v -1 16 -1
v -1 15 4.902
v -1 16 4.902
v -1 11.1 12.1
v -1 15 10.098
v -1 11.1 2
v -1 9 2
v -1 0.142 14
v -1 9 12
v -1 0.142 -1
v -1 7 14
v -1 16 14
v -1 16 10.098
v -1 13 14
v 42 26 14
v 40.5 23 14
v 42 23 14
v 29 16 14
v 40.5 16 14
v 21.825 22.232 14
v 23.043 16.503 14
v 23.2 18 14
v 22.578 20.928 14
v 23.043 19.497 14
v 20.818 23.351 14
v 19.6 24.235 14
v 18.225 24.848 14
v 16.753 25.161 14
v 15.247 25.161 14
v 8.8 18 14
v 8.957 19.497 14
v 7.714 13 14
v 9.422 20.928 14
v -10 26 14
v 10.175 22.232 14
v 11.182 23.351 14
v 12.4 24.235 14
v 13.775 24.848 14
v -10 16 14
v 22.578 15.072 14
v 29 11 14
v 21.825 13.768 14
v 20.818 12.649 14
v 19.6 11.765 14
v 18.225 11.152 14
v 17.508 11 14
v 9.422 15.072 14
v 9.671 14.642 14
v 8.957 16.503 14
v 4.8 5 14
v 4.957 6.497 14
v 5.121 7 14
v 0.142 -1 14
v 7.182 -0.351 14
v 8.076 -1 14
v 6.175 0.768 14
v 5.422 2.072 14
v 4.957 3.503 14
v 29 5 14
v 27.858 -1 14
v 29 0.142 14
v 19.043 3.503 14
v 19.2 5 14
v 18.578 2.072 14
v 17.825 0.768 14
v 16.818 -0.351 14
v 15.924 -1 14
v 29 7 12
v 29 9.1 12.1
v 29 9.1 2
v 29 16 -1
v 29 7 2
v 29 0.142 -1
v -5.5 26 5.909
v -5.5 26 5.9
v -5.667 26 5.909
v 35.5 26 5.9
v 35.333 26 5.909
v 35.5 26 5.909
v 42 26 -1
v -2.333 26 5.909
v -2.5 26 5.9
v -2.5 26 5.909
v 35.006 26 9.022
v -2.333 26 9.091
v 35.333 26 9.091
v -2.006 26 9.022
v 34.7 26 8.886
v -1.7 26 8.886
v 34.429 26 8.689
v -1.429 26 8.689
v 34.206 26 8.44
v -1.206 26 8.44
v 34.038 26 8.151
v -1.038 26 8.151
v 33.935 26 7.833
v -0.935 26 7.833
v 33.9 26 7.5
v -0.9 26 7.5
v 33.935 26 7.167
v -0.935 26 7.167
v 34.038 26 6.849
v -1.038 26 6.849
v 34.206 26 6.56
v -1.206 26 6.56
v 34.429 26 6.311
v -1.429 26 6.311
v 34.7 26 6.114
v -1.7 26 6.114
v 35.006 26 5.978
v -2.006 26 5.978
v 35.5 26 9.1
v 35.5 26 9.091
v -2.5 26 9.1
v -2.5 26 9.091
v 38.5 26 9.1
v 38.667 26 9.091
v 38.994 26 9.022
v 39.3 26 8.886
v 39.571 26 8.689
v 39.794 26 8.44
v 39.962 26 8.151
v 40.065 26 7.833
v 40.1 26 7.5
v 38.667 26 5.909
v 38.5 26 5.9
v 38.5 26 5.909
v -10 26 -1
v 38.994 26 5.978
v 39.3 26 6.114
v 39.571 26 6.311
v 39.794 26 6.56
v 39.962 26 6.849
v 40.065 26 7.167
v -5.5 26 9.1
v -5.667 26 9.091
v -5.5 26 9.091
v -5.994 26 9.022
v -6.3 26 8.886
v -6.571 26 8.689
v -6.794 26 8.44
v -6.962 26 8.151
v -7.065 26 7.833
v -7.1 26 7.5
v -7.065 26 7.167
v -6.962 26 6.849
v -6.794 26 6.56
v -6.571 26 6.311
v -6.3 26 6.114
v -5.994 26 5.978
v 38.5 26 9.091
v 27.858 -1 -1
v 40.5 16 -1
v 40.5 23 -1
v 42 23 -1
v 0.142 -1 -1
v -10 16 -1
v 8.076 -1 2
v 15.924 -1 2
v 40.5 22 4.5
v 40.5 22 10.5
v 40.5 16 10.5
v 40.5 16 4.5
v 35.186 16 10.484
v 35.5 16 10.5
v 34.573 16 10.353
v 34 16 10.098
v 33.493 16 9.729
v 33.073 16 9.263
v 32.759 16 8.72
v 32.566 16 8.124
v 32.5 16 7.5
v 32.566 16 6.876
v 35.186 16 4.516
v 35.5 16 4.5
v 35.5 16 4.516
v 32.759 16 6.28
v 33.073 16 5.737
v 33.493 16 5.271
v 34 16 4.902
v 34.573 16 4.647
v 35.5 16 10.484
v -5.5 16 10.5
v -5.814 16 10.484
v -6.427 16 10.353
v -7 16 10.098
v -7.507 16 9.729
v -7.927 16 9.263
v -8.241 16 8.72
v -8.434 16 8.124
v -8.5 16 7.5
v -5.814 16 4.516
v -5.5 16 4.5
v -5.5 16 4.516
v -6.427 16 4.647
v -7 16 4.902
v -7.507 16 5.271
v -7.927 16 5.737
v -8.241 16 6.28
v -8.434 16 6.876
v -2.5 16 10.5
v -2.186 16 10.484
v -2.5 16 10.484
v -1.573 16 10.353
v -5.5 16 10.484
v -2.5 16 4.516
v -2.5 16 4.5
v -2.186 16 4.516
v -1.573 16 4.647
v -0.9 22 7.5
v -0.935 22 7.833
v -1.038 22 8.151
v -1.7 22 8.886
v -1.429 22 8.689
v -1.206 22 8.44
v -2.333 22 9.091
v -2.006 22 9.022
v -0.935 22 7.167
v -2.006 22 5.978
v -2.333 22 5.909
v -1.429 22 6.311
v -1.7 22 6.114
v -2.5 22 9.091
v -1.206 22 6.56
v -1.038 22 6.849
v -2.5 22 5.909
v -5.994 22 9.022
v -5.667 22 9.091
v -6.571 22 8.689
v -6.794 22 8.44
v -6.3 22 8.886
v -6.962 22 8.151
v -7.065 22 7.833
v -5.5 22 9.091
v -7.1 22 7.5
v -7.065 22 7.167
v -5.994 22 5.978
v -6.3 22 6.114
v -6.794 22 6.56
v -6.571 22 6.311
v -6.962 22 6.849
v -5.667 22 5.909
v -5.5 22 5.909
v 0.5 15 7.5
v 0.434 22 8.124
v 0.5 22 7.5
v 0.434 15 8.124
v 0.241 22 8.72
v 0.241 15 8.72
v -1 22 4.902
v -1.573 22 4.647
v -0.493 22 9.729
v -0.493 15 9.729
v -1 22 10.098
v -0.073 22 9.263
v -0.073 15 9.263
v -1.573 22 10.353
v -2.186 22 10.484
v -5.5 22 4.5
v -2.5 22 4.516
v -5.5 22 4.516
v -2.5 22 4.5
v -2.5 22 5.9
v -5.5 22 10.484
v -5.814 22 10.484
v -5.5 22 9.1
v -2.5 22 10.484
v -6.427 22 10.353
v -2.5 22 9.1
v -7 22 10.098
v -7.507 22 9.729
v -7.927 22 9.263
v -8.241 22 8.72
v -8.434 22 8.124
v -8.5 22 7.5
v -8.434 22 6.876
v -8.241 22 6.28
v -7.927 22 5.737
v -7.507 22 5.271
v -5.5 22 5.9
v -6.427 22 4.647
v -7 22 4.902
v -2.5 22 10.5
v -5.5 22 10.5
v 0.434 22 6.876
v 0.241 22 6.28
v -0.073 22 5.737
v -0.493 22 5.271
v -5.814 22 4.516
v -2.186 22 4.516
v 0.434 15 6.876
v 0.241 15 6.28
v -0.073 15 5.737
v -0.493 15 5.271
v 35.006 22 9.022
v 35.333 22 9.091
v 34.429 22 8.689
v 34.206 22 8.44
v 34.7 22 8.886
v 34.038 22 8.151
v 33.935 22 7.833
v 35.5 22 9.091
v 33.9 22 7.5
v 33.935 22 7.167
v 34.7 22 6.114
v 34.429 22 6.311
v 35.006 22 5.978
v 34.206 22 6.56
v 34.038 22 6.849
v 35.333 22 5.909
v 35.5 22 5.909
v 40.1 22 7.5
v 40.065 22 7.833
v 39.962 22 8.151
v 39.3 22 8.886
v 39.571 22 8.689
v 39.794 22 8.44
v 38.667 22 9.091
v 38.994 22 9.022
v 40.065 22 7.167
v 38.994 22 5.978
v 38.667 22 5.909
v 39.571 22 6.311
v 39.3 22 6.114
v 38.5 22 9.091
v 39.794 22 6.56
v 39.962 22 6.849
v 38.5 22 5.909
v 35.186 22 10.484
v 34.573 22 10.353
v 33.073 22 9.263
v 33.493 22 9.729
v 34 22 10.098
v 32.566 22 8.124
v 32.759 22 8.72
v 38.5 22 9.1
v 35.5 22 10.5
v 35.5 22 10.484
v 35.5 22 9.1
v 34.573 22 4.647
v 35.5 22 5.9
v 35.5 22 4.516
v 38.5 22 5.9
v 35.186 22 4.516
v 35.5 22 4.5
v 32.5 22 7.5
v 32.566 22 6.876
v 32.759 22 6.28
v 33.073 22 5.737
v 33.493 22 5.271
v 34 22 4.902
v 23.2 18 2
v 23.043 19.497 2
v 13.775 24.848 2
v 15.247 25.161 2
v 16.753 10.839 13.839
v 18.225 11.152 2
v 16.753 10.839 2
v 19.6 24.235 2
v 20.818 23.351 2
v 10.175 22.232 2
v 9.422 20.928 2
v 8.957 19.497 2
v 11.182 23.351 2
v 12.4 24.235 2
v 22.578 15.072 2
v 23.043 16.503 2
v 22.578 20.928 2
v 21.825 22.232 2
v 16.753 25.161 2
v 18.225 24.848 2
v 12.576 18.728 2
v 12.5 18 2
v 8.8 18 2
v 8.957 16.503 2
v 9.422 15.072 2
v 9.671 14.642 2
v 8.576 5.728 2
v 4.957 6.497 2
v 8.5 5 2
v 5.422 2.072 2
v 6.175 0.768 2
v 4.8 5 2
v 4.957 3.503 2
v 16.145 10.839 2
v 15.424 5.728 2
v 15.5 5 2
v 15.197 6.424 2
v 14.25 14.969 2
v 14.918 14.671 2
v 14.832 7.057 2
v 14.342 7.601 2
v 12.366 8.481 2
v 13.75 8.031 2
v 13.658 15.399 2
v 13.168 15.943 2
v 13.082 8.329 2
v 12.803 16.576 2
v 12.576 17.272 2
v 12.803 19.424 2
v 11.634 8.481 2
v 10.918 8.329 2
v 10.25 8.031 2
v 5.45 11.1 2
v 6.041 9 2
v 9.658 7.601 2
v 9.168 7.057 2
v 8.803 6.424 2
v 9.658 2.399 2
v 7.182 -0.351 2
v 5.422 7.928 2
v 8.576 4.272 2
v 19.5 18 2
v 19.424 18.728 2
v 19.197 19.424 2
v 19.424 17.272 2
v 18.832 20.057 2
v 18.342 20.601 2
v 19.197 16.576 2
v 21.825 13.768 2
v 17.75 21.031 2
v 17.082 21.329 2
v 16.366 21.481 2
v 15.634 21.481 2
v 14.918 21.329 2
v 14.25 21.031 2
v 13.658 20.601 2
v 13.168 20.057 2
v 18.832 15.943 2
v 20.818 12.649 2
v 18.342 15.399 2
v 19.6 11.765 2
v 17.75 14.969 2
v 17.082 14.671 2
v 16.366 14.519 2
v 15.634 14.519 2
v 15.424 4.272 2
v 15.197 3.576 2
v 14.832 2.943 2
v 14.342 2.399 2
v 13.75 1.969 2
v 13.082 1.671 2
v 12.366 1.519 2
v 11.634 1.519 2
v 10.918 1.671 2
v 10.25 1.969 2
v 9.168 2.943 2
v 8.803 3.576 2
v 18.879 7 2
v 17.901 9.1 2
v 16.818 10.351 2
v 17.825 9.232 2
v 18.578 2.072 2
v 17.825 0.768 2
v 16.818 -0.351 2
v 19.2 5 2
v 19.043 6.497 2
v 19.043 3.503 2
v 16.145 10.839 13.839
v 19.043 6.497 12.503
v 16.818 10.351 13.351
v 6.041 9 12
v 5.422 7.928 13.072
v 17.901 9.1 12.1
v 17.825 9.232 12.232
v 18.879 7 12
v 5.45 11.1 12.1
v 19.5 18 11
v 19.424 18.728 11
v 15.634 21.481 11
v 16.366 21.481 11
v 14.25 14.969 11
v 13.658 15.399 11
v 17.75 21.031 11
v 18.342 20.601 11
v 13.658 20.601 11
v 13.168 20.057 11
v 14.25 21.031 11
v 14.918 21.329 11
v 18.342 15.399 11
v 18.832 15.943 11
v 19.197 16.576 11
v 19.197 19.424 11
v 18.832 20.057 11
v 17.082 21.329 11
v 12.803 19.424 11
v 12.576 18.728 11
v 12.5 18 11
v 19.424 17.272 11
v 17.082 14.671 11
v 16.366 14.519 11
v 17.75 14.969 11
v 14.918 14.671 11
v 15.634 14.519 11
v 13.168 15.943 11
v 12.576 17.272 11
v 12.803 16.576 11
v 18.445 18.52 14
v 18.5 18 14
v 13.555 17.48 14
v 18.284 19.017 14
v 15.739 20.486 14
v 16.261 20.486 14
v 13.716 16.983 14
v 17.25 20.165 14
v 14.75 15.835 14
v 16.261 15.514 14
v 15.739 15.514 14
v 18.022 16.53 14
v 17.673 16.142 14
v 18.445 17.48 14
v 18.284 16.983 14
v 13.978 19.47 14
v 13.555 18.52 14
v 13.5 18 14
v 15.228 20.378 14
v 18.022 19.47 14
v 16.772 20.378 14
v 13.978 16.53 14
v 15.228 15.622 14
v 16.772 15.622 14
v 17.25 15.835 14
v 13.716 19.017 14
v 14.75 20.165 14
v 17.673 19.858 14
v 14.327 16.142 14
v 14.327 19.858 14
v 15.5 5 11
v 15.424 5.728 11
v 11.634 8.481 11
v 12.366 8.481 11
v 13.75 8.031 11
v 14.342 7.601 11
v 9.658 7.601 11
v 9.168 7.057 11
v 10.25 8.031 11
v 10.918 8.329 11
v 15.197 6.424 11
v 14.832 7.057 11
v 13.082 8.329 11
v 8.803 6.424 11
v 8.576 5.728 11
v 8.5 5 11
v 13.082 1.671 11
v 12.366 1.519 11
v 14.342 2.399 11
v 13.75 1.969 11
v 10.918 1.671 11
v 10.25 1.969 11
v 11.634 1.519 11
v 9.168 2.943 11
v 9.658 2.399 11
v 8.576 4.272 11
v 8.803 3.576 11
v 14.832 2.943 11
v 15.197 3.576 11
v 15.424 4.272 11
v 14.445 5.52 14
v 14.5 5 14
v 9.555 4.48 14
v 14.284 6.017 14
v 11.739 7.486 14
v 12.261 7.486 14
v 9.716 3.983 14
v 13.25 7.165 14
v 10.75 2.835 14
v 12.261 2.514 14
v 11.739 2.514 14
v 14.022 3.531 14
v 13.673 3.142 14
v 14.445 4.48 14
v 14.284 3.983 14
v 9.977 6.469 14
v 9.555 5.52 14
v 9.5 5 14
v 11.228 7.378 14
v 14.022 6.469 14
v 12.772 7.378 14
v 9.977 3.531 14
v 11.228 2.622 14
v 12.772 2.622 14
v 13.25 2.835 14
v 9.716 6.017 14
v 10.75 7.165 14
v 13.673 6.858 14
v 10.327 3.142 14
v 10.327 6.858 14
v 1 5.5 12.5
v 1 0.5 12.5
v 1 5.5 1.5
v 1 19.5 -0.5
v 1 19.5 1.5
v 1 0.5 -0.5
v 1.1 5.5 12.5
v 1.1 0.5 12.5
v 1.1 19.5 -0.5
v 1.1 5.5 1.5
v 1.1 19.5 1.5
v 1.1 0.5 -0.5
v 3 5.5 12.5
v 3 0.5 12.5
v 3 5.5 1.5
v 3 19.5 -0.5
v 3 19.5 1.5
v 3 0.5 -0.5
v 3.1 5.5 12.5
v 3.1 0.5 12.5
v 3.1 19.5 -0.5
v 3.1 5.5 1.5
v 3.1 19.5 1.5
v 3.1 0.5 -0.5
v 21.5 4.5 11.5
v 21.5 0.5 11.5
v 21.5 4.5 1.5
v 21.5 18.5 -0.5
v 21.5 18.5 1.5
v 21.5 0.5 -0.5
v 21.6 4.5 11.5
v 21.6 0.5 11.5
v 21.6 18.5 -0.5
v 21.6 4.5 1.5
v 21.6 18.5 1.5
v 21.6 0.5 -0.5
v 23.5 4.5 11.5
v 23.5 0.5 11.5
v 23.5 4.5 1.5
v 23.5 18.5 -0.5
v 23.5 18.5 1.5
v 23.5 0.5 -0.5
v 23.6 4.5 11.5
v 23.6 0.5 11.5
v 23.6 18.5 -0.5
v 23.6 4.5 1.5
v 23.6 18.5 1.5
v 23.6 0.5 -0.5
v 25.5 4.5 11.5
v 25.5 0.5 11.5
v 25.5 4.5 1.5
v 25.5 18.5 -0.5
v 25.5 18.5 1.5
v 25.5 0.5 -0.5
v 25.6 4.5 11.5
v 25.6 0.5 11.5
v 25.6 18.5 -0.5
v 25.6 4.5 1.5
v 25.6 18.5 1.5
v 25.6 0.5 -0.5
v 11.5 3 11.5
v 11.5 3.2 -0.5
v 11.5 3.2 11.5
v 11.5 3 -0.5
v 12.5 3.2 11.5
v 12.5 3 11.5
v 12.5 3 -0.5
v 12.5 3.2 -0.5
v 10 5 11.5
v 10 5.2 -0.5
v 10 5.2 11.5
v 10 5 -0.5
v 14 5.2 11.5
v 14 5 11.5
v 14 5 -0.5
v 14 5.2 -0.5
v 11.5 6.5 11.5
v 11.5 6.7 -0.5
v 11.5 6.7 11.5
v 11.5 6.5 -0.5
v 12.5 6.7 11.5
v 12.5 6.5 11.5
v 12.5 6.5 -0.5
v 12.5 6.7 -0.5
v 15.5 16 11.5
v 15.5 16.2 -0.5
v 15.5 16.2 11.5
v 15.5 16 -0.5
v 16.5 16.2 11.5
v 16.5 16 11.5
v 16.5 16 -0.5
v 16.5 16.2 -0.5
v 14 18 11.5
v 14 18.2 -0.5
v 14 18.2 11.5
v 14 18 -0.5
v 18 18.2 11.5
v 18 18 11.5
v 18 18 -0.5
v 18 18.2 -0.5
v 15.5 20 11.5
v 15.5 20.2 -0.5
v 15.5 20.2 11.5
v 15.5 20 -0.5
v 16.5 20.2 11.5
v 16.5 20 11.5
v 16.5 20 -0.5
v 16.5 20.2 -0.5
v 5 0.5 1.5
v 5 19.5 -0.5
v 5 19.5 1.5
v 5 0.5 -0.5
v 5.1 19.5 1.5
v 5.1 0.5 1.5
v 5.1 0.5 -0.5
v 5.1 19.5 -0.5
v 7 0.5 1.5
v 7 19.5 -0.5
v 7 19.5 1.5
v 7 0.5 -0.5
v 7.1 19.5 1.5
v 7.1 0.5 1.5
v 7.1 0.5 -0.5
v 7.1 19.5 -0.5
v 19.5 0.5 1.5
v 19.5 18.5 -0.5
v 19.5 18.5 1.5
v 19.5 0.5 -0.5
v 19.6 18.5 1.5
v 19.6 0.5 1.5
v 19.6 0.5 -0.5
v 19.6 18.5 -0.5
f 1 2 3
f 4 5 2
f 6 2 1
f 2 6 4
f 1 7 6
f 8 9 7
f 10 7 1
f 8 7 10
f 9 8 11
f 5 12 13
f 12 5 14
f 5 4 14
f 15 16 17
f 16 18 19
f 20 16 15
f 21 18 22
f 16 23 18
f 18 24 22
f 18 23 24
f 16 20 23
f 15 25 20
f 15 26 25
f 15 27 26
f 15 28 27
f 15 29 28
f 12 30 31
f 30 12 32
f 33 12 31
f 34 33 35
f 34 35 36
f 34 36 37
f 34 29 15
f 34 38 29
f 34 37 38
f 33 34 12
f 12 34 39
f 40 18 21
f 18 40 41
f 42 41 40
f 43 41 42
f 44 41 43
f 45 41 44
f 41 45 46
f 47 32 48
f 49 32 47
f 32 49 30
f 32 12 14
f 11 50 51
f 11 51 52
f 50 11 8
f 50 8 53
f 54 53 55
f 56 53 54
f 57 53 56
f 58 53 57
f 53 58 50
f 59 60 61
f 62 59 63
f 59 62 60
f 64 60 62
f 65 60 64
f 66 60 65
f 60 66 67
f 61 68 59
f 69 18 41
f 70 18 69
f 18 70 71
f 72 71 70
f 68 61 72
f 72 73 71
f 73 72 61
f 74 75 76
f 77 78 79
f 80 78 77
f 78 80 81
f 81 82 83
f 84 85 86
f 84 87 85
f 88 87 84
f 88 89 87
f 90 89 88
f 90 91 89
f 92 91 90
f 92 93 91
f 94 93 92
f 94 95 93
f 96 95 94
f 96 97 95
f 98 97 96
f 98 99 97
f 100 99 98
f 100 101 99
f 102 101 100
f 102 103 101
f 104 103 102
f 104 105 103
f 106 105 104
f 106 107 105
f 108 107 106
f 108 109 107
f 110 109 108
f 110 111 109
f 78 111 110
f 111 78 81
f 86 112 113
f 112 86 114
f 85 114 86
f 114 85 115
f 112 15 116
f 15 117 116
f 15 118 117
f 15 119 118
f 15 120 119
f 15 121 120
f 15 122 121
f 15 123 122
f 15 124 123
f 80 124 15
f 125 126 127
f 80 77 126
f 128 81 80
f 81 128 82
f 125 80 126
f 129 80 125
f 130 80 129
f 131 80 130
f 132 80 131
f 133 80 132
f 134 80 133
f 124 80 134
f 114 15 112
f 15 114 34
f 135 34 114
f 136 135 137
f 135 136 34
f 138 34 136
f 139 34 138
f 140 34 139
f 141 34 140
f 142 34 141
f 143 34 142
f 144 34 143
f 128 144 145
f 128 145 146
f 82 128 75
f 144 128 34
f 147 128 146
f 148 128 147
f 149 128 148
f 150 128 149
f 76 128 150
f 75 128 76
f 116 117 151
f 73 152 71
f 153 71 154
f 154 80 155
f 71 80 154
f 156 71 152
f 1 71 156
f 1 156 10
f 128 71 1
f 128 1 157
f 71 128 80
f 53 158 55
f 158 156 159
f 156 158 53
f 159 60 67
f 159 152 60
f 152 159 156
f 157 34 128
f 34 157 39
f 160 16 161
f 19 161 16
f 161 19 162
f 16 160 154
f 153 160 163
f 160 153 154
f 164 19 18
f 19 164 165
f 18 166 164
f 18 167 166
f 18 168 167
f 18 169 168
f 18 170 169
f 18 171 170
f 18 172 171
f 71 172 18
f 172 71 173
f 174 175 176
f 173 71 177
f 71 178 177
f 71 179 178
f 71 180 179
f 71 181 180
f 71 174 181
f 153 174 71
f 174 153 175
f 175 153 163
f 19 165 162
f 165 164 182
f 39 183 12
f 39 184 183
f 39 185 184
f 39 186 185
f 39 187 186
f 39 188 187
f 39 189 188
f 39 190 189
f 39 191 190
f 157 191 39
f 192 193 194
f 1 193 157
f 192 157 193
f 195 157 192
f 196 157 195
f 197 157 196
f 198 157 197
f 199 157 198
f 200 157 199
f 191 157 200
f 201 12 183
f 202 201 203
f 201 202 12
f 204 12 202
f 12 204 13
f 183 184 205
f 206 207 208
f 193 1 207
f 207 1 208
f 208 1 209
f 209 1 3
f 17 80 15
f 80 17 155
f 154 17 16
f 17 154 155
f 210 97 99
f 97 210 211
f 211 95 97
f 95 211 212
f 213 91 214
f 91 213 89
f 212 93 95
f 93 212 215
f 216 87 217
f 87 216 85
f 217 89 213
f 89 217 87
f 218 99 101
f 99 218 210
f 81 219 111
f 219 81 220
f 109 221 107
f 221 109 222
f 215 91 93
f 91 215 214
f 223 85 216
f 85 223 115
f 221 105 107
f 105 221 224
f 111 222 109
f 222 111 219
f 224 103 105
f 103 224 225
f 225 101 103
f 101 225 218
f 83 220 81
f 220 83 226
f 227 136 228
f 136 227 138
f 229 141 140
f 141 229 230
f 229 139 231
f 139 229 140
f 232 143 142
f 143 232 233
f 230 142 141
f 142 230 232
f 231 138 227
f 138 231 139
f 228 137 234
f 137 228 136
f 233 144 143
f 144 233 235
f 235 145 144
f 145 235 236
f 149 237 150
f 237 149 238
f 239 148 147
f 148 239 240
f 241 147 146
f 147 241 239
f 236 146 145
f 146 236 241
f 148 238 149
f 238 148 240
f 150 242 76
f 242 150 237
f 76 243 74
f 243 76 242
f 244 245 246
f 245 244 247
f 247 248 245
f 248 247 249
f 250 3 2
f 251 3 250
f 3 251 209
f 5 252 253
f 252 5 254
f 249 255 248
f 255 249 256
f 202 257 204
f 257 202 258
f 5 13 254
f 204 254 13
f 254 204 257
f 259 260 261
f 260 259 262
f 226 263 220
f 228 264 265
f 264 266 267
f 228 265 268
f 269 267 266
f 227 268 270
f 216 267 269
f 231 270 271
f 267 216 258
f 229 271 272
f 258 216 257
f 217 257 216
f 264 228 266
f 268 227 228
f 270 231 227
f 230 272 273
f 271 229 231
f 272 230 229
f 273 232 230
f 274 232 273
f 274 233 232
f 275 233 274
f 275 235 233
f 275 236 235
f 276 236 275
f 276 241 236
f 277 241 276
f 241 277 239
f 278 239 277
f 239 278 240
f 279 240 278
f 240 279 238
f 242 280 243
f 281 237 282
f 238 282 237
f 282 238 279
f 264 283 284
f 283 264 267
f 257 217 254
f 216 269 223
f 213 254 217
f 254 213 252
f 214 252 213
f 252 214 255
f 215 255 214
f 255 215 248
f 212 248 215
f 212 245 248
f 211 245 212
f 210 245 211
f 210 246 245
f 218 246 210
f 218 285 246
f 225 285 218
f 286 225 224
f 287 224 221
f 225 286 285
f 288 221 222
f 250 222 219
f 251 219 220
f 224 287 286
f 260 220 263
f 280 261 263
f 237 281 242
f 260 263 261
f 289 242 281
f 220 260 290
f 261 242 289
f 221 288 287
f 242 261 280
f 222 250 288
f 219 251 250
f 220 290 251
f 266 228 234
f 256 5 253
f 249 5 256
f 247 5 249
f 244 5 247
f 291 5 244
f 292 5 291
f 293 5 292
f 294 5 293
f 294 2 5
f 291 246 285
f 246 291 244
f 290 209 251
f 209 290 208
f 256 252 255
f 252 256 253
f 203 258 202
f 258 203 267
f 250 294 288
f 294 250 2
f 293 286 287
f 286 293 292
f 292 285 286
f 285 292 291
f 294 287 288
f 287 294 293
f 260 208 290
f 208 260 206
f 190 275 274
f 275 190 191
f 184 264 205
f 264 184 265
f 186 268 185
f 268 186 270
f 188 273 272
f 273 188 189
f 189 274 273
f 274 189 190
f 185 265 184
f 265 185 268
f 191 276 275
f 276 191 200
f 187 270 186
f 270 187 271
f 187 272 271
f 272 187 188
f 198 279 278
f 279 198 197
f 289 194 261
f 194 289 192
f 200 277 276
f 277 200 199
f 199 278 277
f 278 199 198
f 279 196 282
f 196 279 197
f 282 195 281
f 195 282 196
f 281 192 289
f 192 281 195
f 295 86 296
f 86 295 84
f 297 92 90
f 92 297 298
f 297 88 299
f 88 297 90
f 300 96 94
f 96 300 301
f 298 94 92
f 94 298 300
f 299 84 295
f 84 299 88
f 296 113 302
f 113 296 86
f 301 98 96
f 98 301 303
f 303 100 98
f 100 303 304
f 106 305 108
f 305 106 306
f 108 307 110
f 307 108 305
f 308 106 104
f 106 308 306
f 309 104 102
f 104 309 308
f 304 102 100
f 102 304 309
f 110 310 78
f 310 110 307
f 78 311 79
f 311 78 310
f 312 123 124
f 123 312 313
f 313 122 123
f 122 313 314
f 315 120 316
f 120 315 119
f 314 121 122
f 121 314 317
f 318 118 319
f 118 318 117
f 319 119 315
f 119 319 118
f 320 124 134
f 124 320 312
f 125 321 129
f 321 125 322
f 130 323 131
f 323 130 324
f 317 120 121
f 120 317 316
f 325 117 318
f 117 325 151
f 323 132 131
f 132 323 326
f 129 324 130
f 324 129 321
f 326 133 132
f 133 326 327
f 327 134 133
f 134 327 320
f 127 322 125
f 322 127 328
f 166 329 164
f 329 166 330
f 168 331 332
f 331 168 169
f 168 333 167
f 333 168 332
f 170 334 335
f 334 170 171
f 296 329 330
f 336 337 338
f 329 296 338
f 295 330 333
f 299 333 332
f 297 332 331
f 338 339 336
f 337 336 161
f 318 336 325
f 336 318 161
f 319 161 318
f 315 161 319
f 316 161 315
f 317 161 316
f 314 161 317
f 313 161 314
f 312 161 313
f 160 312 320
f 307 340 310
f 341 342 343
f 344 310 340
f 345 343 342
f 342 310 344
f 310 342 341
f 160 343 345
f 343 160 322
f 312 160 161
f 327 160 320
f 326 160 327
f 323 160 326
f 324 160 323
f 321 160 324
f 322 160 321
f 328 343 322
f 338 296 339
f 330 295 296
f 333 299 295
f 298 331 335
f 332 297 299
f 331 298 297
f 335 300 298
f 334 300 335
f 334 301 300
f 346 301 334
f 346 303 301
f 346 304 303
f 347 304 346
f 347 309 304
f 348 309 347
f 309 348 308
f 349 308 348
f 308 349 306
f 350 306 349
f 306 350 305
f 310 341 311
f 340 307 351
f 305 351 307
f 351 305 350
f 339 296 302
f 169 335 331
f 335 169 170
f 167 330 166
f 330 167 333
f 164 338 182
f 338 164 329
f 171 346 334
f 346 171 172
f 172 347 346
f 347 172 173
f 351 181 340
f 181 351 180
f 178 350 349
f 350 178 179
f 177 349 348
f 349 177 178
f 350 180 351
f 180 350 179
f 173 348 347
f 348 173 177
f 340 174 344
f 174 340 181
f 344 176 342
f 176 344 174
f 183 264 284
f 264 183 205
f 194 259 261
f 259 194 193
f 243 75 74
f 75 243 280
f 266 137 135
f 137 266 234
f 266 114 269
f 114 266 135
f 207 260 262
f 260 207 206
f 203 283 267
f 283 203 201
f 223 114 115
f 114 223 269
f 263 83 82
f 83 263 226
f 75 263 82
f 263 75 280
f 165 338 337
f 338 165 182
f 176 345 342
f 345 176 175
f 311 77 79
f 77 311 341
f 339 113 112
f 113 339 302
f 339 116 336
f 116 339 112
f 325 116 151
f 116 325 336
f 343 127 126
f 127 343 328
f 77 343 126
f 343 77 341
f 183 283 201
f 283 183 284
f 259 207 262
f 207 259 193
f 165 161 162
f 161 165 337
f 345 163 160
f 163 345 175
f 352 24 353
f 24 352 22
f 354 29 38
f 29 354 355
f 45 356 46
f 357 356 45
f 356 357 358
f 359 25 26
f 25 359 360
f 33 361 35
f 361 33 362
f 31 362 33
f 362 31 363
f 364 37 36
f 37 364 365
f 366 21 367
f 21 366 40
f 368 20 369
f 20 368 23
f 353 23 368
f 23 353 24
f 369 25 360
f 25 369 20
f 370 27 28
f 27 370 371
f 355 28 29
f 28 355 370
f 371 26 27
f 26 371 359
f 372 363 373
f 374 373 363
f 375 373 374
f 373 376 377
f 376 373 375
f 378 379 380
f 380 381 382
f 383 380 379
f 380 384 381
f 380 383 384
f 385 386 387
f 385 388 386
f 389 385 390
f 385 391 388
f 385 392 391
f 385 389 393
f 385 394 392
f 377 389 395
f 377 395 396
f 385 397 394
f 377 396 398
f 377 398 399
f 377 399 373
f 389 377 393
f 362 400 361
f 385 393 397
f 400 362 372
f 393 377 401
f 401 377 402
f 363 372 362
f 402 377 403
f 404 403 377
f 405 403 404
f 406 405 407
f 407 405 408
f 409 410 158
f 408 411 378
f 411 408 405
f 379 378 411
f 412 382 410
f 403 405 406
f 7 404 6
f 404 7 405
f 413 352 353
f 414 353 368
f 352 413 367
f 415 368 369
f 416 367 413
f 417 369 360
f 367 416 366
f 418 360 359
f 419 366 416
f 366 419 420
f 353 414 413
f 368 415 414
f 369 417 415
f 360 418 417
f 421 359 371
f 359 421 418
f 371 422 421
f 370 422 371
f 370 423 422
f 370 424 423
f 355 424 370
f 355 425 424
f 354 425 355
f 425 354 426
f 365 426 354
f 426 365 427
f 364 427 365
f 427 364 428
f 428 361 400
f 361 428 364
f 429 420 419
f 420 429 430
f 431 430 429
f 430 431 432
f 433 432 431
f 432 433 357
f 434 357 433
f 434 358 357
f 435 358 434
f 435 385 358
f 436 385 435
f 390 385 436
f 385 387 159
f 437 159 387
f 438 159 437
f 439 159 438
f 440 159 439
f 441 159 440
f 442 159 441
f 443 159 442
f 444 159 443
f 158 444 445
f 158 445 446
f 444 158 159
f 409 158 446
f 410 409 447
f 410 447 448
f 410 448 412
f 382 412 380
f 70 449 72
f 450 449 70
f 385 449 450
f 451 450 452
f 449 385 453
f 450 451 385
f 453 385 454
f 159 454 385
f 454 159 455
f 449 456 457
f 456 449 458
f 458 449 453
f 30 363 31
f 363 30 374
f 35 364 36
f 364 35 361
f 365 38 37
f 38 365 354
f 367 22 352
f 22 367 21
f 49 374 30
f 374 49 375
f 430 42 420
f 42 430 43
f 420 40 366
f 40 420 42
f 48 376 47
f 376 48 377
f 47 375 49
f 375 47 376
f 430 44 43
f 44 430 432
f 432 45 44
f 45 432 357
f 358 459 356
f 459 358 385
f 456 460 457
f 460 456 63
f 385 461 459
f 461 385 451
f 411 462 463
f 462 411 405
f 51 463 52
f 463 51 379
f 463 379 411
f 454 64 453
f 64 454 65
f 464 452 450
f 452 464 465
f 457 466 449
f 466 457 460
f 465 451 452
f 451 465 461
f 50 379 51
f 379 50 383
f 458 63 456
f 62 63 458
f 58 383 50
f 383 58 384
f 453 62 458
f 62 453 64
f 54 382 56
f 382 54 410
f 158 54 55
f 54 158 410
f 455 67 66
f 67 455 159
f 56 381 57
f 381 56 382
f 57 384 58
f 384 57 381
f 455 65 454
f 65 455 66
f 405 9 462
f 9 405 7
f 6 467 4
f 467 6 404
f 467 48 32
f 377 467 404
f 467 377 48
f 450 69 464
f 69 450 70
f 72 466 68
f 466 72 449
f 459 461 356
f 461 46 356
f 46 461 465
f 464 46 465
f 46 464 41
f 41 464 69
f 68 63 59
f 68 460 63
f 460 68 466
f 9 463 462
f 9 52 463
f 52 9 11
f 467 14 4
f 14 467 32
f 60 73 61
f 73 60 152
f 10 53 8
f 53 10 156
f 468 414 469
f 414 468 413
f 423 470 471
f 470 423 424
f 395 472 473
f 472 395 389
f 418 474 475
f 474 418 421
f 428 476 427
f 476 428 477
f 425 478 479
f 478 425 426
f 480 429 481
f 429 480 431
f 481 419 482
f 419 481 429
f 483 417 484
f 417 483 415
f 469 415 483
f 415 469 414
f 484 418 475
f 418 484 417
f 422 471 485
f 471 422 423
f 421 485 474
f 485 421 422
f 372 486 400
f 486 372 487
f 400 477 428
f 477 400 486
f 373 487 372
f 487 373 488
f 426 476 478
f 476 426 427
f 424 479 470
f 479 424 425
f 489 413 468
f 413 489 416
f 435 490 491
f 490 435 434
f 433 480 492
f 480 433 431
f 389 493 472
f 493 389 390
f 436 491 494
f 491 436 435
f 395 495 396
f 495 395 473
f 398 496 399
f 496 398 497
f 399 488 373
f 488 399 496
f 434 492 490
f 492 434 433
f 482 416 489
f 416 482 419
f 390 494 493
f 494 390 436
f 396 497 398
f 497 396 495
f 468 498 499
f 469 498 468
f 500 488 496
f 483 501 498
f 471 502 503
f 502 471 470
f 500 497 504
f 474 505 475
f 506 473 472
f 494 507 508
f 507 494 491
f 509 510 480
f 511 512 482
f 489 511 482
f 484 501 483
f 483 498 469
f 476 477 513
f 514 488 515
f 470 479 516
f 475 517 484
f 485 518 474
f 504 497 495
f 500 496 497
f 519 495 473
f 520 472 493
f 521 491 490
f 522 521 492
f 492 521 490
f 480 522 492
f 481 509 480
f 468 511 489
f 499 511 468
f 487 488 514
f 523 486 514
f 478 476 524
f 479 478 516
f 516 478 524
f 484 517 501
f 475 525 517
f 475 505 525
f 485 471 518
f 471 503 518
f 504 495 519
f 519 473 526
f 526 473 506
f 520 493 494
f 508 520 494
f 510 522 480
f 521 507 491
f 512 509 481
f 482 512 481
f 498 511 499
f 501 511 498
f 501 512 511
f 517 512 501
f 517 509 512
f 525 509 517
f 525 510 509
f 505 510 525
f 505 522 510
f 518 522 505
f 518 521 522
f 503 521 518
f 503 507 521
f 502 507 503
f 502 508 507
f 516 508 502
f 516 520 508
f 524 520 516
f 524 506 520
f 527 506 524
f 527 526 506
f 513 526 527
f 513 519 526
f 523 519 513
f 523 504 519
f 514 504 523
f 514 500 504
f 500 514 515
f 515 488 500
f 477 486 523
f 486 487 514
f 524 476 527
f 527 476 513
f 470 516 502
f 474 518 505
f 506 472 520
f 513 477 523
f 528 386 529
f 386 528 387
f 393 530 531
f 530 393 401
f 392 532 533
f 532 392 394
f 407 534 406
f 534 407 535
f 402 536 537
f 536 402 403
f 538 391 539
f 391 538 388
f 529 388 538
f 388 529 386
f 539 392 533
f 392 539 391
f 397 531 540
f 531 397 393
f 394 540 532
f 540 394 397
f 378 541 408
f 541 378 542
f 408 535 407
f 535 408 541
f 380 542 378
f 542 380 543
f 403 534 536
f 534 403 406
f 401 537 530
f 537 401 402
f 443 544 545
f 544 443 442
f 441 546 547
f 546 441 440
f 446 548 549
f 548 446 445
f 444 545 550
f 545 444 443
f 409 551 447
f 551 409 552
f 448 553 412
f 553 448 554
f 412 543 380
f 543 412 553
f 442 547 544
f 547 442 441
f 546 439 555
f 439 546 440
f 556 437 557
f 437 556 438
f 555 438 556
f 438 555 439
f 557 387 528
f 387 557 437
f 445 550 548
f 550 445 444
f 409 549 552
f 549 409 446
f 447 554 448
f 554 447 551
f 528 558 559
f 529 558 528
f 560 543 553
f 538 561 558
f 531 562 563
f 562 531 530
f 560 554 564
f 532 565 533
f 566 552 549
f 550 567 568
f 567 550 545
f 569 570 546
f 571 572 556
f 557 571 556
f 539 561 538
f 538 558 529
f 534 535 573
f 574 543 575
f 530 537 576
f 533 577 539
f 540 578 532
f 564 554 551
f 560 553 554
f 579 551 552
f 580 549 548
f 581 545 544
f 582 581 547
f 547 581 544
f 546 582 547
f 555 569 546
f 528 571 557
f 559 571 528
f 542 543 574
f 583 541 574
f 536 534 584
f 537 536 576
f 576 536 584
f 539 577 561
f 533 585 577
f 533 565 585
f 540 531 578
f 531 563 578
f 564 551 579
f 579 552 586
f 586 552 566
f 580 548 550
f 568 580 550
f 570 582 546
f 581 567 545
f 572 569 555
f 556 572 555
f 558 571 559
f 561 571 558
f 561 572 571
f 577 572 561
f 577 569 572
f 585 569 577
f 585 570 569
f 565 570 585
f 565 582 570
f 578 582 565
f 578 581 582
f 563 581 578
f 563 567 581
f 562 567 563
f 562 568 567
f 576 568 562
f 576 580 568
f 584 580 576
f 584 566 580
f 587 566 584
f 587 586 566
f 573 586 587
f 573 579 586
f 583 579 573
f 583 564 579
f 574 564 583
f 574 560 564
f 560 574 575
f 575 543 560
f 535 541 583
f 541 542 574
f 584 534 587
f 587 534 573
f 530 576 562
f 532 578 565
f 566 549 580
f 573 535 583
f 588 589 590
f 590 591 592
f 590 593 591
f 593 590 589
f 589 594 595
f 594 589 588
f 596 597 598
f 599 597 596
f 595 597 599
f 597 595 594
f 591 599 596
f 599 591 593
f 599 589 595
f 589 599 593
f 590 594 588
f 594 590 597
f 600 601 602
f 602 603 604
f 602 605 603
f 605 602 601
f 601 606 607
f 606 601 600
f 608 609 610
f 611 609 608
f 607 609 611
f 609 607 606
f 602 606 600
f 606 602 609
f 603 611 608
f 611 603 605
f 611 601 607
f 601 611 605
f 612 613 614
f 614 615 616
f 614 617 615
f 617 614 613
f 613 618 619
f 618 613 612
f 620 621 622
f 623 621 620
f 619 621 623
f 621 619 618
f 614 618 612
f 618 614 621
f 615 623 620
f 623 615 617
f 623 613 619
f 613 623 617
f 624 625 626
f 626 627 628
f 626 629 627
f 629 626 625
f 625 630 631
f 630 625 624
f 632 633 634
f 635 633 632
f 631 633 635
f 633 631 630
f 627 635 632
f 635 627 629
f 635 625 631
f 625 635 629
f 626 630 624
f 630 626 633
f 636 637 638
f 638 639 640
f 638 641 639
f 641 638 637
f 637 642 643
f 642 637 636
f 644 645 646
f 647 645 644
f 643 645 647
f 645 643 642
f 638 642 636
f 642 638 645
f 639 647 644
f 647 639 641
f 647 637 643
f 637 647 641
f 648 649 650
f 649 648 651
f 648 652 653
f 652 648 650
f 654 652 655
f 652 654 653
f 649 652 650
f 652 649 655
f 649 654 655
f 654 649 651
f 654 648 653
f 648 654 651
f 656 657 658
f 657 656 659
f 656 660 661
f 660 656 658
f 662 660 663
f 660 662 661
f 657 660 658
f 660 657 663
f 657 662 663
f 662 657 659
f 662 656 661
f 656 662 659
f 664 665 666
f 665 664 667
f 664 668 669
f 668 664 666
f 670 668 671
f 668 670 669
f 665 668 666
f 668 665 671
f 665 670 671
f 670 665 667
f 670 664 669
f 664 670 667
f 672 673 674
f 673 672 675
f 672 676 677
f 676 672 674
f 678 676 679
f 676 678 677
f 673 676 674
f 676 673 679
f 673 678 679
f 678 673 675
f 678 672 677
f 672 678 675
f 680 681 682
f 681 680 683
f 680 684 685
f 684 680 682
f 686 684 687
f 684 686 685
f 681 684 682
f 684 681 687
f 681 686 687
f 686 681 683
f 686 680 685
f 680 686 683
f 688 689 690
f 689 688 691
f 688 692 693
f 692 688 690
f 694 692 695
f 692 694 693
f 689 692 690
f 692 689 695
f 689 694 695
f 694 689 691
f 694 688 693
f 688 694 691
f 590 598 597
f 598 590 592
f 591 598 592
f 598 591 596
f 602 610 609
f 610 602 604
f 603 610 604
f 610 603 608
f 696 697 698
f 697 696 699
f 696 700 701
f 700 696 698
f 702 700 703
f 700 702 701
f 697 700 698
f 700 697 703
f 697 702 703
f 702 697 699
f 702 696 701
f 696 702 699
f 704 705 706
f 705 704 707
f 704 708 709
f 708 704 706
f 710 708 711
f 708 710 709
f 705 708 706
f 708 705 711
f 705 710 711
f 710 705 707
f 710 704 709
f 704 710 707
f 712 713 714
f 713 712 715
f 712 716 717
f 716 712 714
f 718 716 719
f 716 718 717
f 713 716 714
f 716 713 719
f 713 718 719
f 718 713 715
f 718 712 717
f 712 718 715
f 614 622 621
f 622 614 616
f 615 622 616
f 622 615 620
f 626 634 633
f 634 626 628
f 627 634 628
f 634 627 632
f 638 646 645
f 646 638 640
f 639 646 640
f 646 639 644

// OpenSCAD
// PRUSA iteration3
// Y belt holder
// GNU GPL v3
// Josef Průša <iam@josefprusa.cz> and contributors
// http://www.reprap.org/wiki/Prusa_Mendel
// http://prusamendel.org

module main_body()
{
translate([-1, -1, -1 ]) cube([ 30, 27, 15 ]);
translate([-10, 16, -1 ]) cube([ 50.5, 10, 15 ]);
translate([-10, 23, -1 ]) cube([ 52, 3, 15 ]);
}

module belt_holders()
{
   translate([ 16, 18, 0 ]) cylinder( h=11, r=3.5, $fn=30 );  // upper belt holder
   translate([ 16, 18, 11 ]) cylinder( h=3, r1=3.5, r2=2.5, $fn=30 );  // upper belt holder cone
    
   translate([ 12, 5, 0 ]) cylinder( h=11, r=3.5, $fn=30 );  // lower belt holder
   translate([ 12, 5, 11 ]) cylinder( h=3 , r1=3.5, r2=2.5, $fn=30 );  // lower belt holder cone
}

module screws()
{
    translate( [ -2.5 , 28 , 7.5 ] ) rotate([90,0,0]) cylinder( h = 10, r = 1.6, $fn=30);  //screw hole
    translate( [ -5.5 , 28 , 7.5 ] ) rotate([90,0,0]) cylinder( h = 10, r = 1.6, $fn=30);  //screw hole
    translate( [ -2.5, 22 , 7.5 ] ) rotate([90,0,0]) cylinder( h = 7, r = 3, $fn=30);  //screw hole - head
    translate( [ -5.5 , 22 , 7.5 ] ) rotate([90,0,0]) cylinder( h = 10, r = 3, $fn=30);  //screw hole - head
    
    translate( [ 35.5 , 28 , 7.5 ] ) rotate([90,0,0]) cylinder( h = 10, r = 1.6, $fn=30);  //screw hole
    translate( [ 38.5 , 28 , 7.5 ] ) rotate([90,0,0]) cylinder( h = 10, r = 1.6, $fn=30);  //screw hole
    translate( [ 35.5 , 22 , 7.5 ] ) rotate([90,0,0]) cylinder( h = 10, r = 3, $fn=30);  //screw hole - head
    translate( [ 38.5 , 22 , 7.5 ] ) rotate([90,0,0]) cylinder( h = 10, r = 3, $fn=30);  //screw hole - head
    
    translate([-5.5, 21, 5.9 ]) cube([ 3, 6, 3.2 ]);
    translate([35.5, 21, 5.9 ]) cube([ 3, 6, 3.2 ]);
    
    translate([-5.5, 15, 4.5 ]) cube([ 3, 7, 6 ]);
    translate([35.5, 15, 4.5 ]) cube([ 6, 7, 6 ]);
}

//belt_holders();
module main()

{
difference()
{
main_body();
    
translate([ 16, 18, 2 ]) cylinder( h = 16, r = 7.2, $fn=30 );  // upper belt space cutaway
translate([ 12, 5, 2 ]) cylinder( h = 16, r = 7.2, $fn=30 );  // lower belt space cutaway
translate([-20, 9, 2]) cube([ 28, 2.1, 16 ]); 
rotate([0,0,40]) translate([11, 1, 2 ]) cube([ 10, 4, 16 ]);     
    
translate([10, 7, 2 ]) cube([ 32, 2.1, 16 ]); 
    
translate([16, 8, 11 ]) rotate([45,0,0]) cube([ 15, 5, 5 ]);     
translate([-2, 10, 11 ]) rotate([45,0,0]) cube([ 10, 5, 5 ]);     
screws();
    
 
 
 
    // corner cutoff
    translate([30,-13,-2]) rotate([0,0,45]) cube([10,10,20]);    
    translate([-2,-13,-2]) rotate([0,0,45]) cube([10,10,20]);    
    
    
}
}

module selective_infill()
{
    // print part reinforcement
    translate([1,    0.5, -0.5]) cube([0.1,5,13]);     
    translate([3,    0.5, -0.5]) cube([0.1,5,13]);     
    translate([21.5, 0.5, -0.5]) cube([0.1,4,12]);
    translate([23.5, 0.5, -0.5]) cube([0.1,4,12]);
    translate([25.5, 0.5, -0.5]) cube([0.1,4,12]);
    translate([11.5, 3,   -0.5]) cube([1,0.2,12]);
    translate([10,   5,   -0.5]) cube([4,0.2,12]);
    translate([11.5, 6.5, -0.5]) cube([1,0.2,12]);
    translate([15.5, 16,  -0.5]) cube([1,0.2,12]);
    translate([14,   18,  -0.5]) cube([4,0.2,12]);
    translate([15.5, 20,  -0.5]) cube([1,0.2,12]);   
   
    translate([1, 5.5, -0.5]) cube([0.1,14,2]);    
    translate([3, 5.5, -0.5]) cube([0.1,14,2]);   
    translate([5, 0.5, -0.5]) cube([0.1,19,2]);   
    translate([7, 0.5, -0.5]) cube([0.1,19,2]);   
    
    translate([19.5, 0.5, -0.5]) cube([0.1,18,2]);
    translate([21.5, 4.5, -0.5]) cube([0.1,14,2]);
    translate([23.5, 4.5, -0.5]) cube([0.1,14,2]);
    translate([25.5, 4.5, -0.5]) cube([0.1,14,2]);
    }
    
    
module y_belt_holder()
{
difference()
    {
    union()
    {
    main();
    belt_holders();  
    }
    selective_infill();
}
}    
   
y_belt_holder();

   
